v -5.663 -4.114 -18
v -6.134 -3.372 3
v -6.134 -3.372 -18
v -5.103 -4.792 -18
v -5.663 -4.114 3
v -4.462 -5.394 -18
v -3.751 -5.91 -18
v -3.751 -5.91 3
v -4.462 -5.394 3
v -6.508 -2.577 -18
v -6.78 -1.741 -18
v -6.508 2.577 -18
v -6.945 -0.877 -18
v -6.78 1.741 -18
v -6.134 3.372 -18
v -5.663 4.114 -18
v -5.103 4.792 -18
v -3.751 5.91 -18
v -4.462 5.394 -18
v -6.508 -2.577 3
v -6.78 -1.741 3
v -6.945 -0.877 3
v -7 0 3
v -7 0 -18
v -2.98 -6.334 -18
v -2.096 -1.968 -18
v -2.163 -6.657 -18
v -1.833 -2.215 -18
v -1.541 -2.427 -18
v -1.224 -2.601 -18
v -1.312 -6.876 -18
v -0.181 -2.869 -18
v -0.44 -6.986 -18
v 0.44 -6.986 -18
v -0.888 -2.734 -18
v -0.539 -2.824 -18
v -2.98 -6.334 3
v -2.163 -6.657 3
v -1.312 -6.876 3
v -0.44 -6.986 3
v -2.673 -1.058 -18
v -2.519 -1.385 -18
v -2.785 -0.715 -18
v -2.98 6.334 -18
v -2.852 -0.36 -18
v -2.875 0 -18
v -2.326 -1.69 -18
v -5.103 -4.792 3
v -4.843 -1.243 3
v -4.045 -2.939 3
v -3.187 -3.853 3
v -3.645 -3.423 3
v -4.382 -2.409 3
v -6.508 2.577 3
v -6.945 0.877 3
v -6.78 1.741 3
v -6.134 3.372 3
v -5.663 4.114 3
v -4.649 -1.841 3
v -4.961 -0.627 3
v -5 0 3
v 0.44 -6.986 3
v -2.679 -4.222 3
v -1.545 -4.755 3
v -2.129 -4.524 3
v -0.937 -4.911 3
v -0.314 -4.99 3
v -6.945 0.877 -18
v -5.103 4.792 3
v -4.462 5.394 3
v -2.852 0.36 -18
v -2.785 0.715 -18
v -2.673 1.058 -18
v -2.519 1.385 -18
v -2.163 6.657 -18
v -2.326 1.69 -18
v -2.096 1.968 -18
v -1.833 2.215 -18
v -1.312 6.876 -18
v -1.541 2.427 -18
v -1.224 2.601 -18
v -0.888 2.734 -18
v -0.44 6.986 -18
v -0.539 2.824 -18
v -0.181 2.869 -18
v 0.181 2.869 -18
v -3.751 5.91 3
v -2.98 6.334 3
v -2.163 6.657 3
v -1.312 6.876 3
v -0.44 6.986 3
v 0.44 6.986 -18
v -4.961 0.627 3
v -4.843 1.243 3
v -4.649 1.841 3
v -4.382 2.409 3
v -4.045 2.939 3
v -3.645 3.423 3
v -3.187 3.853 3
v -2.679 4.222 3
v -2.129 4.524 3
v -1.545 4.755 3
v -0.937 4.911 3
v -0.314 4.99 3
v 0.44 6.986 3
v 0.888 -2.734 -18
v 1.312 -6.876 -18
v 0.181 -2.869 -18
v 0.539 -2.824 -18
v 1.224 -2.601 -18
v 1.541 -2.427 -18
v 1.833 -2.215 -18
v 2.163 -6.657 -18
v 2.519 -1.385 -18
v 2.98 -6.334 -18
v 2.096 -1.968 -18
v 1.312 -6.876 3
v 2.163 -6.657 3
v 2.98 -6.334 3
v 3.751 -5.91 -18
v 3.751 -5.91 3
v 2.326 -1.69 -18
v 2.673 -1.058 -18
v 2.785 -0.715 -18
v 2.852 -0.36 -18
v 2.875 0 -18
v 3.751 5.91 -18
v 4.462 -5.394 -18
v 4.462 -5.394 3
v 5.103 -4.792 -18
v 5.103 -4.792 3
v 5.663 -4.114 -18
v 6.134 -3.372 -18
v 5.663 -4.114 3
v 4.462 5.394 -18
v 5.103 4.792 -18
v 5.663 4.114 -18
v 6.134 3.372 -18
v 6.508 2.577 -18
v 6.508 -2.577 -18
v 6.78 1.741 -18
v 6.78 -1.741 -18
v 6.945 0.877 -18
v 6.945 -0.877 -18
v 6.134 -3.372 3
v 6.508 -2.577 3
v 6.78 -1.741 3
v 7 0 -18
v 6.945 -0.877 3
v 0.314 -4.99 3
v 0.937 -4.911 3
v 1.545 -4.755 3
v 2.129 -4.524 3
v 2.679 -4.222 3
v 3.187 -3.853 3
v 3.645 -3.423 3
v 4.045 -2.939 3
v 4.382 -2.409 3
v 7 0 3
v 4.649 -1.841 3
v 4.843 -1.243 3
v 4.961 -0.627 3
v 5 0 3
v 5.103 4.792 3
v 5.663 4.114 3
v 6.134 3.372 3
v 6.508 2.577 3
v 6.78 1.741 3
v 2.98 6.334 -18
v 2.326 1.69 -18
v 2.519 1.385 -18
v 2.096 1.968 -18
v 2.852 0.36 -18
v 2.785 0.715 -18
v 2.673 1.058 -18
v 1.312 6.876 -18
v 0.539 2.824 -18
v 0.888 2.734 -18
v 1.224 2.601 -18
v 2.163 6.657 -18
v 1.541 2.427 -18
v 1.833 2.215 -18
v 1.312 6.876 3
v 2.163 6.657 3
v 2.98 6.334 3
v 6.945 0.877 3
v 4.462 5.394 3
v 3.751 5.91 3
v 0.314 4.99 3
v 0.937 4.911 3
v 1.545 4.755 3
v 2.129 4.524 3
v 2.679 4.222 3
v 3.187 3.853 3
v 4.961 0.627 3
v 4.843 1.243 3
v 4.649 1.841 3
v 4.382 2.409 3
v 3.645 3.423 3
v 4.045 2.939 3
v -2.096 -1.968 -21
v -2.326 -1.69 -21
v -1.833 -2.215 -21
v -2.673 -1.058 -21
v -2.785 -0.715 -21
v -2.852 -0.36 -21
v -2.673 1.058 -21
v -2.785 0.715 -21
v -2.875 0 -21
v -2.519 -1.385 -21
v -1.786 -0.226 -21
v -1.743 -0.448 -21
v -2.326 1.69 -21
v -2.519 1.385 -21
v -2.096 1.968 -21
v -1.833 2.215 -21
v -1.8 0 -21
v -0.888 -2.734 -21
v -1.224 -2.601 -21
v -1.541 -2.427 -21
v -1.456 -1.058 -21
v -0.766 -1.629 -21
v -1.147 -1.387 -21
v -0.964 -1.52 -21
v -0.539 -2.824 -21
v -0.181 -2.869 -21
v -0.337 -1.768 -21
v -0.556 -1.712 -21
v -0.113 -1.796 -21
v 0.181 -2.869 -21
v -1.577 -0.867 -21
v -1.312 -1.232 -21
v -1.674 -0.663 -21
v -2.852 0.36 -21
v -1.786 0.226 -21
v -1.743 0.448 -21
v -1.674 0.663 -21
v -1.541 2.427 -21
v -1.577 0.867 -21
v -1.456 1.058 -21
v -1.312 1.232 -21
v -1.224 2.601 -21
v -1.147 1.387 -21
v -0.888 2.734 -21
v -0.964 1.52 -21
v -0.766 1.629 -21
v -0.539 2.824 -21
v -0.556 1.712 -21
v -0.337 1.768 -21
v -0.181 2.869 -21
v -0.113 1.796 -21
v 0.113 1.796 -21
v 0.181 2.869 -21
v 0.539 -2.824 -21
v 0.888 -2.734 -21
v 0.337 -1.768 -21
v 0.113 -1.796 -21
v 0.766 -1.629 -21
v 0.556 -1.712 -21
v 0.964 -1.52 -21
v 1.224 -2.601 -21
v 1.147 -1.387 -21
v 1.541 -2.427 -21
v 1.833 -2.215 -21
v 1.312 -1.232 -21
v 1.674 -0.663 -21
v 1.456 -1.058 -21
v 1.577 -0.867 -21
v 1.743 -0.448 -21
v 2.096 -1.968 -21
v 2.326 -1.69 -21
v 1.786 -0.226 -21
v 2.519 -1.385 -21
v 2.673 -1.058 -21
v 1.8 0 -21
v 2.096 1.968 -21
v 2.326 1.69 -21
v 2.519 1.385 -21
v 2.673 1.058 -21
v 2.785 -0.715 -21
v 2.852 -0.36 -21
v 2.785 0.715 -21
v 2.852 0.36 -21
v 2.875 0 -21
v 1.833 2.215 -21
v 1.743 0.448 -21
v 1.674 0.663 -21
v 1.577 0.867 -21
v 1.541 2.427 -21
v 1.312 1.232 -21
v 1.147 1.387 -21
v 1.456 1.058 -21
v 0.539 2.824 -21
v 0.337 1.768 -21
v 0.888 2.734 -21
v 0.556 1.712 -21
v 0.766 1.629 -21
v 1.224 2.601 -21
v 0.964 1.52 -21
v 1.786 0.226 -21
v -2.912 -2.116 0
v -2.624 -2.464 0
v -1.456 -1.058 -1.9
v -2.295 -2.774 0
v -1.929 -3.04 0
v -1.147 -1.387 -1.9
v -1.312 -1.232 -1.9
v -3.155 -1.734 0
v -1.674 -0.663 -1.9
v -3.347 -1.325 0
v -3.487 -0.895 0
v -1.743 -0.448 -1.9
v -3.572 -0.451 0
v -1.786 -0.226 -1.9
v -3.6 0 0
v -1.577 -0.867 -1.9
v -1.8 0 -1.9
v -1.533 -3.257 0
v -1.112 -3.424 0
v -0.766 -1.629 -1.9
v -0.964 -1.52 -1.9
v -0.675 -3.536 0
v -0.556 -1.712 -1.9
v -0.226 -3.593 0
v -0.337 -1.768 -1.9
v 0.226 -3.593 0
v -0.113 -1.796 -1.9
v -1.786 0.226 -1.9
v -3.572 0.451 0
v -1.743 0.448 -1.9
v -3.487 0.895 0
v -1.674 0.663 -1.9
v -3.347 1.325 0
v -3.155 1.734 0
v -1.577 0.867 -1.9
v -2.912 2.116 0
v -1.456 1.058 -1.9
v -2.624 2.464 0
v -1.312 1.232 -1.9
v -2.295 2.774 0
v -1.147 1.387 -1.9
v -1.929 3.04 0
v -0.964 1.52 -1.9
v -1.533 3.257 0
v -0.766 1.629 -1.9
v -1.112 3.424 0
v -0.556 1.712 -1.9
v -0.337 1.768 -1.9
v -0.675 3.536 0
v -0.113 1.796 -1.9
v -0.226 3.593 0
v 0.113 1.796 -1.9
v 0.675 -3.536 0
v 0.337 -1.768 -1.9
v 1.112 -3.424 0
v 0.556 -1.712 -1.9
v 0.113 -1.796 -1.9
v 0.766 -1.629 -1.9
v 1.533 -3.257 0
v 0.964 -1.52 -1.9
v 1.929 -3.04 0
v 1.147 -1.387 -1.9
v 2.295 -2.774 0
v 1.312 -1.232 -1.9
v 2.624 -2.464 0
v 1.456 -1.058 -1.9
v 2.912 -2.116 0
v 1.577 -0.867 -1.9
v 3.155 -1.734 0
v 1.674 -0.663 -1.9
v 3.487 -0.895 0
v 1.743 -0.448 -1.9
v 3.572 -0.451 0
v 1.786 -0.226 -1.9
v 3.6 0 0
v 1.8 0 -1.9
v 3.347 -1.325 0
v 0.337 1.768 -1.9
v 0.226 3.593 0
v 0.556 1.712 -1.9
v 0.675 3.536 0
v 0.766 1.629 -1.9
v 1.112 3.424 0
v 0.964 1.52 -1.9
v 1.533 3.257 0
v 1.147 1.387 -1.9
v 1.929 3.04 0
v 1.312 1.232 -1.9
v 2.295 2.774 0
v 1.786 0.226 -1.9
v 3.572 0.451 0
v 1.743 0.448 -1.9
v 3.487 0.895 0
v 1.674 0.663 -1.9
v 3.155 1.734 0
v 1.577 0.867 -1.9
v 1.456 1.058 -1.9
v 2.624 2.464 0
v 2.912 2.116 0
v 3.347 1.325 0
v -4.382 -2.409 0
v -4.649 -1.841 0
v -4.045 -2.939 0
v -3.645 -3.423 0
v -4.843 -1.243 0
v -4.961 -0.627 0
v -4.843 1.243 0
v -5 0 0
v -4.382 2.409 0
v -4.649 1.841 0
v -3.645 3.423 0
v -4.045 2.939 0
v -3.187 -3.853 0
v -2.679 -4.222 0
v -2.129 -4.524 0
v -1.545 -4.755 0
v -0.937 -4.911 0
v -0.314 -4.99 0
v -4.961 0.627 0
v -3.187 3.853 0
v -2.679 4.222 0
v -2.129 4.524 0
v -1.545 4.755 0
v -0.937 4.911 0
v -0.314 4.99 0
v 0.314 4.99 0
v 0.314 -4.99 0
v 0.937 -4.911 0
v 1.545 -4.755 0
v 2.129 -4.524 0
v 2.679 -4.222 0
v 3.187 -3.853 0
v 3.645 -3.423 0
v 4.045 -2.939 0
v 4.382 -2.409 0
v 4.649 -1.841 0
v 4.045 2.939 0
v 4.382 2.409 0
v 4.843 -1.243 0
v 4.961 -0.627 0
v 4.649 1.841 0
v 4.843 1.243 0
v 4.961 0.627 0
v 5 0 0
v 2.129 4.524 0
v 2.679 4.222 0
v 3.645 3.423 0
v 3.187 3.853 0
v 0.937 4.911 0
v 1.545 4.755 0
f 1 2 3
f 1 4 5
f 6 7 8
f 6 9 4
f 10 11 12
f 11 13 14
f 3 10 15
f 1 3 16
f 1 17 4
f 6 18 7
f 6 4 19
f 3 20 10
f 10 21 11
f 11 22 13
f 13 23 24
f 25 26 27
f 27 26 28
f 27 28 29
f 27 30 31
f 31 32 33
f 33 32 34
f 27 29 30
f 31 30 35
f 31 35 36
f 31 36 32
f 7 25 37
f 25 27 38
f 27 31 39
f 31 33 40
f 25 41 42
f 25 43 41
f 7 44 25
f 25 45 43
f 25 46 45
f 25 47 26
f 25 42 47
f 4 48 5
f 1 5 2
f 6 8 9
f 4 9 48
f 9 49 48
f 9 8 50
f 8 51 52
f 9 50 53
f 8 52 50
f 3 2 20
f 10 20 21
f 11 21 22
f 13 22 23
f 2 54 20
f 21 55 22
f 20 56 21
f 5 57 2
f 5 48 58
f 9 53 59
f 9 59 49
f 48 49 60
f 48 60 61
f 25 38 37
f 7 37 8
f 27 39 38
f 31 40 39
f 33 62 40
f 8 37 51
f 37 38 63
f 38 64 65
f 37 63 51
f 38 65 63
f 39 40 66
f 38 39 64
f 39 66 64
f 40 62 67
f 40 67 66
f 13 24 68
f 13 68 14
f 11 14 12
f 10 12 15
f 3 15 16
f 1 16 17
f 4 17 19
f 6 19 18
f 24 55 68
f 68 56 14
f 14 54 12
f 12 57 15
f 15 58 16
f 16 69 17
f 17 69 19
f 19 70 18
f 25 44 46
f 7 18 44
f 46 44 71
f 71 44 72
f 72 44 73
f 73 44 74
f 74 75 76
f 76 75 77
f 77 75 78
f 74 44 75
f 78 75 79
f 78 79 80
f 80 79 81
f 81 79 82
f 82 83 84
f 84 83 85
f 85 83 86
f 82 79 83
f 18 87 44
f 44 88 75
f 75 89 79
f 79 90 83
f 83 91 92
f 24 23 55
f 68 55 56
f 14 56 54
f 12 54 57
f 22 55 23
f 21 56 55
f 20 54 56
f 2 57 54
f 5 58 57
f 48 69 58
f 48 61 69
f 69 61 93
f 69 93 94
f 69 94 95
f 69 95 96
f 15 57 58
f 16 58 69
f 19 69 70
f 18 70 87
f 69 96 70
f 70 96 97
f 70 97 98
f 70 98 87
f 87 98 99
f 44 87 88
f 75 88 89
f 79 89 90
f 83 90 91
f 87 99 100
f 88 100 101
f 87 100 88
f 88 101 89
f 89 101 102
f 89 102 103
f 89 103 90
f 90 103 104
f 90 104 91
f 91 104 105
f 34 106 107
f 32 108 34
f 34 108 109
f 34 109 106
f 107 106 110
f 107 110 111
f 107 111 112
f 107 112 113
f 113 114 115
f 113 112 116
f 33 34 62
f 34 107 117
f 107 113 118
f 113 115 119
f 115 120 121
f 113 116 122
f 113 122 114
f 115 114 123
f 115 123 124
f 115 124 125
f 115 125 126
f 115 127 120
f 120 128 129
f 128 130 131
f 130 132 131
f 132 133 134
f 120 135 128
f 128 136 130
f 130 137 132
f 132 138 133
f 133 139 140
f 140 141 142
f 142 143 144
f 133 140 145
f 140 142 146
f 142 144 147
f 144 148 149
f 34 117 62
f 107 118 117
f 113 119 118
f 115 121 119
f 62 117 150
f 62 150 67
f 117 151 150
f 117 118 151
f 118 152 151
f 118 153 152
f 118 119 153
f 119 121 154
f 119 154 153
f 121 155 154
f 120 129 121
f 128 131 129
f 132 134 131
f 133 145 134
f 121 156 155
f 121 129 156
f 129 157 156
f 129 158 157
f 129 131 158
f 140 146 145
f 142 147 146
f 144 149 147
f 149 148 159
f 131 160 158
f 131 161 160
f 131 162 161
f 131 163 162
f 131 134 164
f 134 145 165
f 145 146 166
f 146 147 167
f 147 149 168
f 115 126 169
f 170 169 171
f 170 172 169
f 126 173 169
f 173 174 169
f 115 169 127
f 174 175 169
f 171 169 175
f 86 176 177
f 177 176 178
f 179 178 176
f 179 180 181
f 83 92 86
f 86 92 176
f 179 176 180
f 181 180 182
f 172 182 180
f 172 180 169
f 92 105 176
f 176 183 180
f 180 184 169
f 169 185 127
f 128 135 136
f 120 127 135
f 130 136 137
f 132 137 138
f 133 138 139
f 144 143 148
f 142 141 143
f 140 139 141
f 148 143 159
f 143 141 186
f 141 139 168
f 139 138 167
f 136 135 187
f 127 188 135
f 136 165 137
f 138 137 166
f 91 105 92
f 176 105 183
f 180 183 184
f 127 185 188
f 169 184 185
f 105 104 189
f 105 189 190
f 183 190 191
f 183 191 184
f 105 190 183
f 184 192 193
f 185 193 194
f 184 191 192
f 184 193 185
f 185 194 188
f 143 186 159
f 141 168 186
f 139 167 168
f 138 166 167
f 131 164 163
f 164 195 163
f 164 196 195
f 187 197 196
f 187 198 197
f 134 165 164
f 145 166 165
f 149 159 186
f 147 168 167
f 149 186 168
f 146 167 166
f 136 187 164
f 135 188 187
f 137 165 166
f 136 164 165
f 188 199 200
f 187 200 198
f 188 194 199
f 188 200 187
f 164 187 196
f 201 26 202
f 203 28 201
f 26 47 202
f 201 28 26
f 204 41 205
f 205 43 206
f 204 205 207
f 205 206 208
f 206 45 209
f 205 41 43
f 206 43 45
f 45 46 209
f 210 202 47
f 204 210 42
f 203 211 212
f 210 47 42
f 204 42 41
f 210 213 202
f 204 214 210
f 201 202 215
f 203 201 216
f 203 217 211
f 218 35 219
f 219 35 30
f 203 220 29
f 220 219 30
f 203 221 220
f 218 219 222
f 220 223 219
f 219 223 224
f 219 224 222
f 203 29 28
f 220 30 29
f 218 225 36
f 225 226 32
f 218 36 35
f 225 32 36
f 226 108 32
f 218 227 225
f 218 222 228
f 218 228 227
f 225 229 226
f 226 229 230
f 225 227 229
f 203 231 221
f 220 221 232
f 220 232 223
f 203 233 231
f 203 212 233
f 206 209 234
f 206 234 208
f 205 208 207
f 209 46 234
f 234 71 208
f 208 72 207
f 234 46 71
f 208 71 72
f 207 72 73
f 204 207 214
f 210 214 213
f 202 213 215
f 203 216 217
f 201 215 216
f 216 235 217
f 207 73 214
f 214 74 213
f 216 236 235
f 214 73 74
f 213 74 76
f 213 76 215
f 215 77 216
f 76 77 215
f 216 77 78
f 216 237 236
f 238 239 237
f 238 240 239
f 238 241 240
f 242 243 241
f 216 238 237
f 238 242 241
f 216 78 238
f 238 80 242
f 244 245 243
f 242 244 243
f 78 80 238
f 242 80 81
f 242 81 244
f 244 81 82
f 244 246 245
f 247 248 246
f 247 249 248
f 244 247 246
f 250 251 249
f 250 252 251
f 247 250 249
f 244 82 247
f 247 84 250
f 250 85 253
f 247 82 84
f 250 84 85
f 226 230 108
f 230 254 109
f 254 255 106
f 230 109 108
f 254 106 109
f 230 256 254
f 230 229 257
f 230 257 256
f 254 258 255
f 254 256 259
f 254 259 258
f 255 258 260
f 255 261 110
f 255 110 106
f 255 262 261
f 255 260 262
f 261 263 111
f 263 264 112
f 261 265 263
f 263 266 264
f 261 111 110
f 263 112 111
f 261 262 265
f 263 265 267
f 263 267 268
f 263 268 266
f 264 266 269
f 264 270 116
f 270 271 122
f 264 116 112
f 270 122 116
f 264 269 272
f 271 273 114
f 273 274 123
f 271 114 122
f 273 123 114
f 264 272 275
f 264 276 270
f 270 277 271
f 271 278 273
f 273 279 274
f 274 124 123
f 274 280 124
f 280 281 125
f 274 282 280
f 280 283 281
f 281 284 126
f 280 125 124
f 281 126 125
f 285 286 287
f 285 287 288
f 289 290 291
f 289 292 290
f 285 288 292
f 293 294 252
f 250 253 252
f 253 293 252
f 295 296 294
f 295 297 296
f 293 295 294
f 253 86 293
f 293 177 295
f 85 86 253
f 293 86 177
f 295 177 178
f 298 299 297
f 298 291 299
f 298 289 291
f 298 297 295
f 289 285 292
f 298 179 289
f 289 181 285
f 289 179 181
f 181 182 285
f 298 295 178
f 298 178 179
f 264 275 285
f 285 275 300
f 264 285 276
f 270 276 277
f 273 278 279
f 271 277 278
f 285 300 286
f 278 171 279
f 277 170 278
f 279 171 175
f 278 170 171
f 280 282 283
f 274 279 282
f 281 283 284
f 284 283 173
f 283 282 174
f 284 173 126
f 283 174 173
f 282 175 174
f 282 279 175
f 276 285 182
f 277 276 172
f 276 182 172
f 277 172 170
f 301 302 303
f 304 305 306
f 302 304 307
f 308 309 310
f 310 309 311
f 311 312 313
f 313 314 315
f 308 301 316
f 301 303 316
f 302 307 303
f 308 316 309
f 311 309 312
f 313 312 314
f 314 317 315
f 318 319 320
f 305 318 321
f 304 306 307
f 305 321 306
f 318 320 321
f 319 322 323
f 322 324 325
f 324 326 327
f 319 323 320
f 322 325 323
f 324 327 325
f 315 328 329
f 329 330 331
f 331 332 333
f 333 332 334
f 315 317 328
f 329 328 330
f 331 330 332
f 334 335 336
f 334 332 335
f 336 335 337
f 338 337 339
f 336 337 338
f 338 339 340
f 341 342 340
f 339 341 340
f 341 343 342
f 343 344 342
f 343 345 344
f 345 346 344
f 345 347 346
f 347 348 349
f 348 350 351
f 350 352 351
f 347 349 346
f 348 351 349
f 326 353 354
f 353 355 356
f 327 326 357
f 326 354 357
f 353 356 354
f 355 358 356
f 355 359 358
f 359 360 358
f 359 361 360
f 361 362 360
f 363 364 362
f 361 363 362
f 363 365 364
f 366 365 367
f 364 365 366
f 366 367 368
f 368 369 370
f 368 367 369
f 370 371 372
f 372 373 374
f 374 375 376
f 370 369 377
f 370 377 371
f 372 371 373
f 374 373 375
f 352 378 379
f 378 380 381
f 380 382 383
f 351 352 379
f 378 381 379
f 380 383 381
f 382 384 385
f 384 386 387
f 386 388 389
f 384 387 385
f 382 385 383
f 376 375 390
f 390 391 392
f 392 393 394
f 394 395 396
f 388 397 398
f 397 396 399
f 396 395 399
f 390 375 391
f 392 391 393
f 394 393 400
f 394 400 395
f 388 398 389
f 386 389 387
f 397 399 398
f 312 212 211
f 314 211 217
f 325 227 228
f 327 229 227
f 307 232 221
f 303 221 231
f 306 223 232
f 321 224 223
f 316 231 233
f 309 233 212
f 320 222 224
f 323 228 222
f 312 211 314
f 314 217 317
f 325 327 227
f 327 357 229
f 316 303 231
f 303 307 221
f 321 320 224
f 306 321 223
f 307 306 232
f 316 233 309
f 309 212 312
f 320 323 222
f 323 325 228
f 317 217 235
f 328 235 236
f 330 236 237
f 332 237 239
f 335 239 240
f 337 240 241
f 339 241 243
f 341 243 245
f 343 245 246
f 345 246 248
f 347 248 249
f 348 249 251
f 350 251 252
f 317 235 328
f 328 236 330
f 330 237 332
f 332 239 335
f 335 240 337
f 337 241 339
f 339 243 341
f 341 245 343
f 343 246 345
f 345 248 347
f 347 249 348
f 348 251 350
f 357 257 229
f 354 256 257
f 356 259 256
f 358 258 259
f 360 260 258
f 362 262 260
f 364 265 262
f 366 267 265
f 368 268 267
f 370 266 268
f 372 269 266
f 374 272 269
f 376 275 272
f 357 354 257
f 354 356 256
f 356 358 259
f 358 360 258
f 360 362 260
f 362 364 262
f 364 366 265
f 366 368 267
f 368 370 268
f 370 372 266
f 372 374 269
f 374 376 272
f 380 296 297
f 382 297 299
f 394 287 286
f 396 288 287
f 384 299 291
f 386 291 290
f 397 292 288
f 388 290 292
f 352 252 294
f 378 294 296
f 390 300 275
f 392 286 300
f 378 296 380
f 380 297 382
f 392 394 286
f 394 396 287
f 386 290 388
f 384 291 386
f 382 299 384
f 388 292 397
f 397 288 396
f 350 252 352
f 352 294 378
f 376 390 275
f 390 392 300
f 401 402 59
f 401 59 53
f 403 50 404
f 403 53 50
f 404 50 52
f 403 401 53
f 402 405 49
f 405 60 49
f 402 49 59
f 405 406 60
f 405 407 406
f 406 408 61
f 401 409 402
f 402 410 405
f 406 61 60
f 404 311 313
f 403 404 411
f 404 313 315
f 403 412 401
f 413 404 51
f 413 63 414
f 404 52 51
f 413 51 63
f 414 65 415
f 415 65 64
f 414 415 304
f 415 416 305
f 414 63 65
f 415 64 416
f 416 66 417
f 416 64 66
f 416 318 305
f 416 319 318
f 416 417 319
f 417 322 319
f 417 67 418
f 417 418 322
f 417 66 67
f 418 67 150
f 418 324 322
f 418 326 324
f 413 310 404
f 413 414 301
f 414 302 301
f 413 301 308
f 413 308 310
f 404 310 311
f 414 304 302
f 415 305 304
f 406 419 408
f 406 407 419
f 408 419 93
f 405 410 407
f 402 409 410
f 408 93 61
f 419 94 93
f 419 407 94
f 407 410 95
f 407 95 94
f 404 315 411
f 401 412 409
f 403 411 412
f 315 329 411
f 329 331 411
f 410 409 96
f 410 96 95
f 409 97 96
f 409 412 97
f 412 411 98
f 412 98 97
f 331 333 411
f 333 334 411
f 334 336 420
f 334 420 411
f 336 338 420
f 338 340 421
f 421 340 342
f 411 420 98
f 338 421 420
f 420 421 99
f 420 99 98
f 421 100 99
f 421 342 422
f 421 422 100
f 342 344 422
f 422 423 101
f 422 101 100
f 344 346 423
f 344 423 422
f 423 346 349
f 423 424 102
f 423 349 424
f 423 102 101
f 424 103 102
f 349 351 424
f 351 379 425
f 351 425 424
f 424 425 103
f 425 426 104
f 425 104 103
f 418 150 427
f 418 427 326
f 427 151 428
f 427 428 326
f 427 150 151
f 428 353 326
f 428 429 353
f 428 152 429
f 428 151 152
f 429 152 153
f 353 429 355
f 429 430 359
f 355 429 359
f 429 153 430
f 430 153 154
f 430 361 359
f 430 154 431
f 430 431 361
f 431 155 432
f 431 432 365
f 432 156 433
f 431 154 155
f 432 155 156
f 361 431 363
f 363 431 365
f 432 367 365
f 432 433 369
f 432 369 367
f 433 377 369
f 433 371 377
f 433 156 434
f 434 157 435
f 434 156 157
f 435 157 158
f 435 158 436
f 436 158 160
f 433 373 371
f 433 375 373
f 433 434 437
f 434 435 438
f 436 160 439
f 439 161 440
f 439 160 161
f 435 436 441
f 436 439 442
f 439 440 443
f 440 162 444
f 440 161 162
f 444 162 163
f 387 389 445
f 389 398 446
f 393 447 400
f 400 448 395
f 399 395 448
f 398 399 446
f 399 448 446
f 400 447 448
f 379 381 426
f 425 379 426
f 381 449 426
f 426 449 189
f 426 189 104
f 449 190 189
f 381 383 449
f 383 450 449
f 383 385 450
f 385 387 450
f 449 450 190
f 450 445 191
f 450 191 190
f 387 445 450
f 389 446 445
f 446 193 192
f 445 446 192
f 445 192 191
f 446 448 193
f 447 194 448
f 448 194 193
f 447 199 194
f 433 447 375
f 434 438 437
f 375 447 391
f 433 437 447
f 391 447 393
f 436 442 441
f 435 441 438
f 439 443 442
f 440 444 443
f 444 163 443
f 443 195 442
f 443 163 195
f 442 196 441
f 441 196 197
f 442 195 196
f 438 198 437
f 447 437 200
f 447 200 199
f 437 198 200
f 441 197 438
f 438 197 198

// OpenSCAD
$fn = 50;


difference() {
	union() {
		translate(v = [0, 0, -18.0000000000]) {
			cylinder(h = 21, r = 7.0000000000);
		}
		#translate(v = [0, 0, -21.0000000000]) {
			cylinder(h = 21, r = 2.8750000000);
		}
	}
	union() {
		translate(v = [0, 0, 0]) {
			rotate(a = [0, 0, 0]) {
				difference() {
					union() {
						translate(v = [0, 0, -21.0000000000]) {
							cylinder(h = 21, r = 1.5000000000);
						}
						translate(v = [0, 0, -1.9000000000]) {
							cylinder(h = 1.9000000000, r1 = 1.8000000000, r2 = 3.6000000000);
						}
						translate(v = [0, 0, -21.0000000000]) {
							cylinder(h = 21, r = 1.8000000000);
						}
						translate(v = [0, 0, -21.0000000000]) {
							cylinder(h = 21, r = 1.5000000000);
						}
					}
					union();
				}
			}
		}
		#cylinder(h = 3, r = 5.0000000000);
	}
}
